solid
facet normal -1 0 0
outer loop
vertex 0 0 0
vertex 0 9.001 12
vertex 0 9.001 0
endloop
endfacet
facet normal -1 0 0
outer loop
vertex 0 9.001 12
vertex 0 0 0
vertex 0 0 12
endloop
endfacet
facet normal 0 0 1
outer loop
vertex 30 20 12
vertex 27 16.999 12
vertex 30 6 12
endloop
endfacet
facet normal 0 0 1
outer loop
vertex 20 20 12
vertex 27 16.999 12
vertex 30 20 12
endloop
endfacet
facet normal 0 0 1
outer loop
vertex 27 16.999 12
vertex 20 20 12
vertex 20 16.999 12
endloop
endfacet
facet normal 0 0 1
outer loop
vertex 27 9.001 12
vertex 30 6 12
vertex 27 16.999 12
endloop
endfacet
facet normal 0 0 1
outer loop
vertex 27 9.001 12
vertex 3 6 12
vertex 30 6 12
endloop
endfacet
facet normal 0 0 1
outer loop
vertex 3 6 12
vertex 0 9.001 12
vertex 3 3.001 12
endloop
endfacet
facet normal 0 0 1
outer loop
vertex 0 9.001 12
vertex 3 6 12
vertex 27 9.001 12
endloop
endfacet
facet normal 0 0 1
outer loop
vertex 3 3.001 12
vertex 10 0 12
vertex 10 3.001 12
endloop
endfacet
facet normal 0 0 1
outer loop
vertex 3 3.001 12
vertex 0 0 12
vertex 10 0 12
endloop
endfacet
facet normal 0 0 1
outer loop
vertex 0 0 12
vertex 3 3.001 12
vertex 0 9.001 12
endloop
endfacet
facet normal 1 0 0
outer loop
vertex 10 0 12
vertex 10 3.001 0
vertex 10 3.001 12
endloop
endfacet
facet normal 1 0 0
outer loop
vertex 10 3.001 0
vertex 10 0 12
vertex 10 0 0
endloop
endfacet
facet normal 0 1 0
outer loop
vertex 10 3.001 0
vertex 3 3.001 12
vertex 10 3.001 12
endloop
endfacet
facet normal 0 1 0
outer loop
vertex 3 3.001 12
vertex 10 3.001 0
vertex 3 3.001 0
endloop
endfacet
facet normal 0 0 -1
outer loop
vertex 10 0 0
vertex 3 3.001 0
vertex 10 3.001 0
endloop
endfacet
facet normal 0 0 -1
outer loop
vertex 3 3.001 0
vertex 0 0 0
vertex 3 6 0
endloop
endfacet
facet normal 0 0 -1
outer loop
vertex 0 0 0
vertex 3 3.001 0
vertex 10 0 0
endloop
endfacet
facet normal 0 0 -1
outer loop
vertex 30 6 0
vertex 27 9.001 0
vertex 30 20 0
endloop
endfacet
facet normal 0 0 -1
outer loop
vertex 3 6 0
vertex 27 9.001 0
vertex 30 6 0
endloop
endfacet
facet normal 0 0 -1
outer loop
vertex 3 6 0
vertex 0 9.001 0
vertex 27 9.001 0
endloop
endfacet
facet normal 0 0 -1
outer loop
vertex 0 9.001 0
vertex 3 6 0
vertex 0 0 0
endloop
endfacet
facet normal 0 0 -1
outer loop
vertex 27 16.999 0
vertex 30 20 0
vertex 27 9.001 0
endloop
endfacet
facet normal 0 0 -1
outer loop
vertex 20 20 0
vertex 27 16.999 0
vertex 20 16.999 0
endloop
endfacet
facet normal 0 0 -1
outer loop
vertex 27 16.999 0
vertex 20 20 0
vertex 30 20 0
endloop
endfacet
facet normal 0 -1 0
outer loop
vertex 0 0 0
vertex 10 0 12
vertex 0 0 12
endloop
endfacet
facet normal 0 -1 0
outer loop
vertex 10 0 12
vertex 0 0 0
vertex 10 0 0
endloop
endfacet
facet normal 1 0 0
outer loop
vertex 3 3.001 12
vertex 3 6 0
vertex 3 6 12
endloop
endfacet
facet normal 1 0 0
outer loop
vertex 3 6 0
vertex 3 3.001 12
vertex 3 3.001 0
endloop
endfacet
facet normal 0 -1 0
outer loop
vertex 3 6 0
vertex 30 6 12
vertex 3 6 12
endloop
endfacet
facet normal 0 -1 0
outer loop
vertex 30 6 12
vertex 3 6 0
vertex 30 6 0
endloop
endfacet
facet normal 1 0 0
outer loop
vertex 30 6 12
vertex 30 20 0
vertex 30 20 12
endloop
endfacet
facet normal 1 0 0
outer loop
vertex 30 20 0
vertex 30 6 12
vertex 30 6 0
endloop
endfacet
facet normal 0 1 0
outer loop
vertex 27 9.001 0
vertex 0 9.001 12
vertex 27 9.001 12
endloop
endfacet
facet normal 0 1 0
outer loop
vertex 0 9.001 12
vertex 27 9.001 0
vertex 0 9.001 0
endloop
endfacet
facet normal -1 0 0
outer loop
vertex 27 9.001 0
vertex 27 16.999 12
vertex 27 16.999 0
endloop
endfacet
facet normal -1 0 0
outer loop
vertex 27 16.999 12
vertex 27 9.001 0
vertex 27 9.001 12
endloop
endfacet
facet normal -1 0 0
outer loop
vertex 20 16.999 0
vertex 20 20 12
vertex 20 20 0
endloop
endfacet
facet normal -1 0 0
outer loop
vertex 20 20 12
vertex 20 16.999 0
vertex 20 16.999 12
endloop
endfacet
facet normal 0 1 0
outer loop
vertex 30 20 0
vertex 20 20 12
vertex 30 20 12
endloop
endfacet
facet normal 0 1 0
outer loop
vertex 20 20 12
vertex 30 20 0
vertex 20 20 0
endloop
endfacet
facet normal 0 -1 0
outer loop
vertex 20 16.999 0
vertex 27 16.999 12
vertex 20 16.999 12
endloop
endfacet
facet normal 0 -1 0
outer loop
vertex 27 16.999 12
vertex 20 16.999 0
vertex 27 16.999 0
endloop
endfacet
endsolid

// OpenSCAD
//=============================================================================
// cord-hanger.scad
//
// Holds the power cord off the floor using the slot ment for storing the
// remote on a lasko tower fan.
//=============================================================================
// Written in 2017 by Patrick Barrett
//
// To the extent possible under law, the author(s) have dedicated all copyright
// and related and neighboring rights to this work to the public domain
// worldwide. This work is distributed without any warranty.
//
// See <http://creativecommons.org/publicdomain/zero/1.0/> for full dedication.
//=============================================================================

width = 12;
thickness = 3;

inner_length = 10;
middle_length = 30;
outter_length = 10;

hanger_opening = 3;
cord_opening = 8;

// customizable variables end here

abit = 0.001; //use for making overlap to get single manifold stl
alot = 100;

$fa = 1;


union() {
    // hanger hook
    cube([inner_length,thickness+abit,width]);
    
    // hanger_opening
    translate([0,thickness-abit, 0])
    cube([thickness,hanger_opening+abit,width]);
    
    // main vert
    translate([0,thickness+hanger_opening, 0])
    cube([middle_length,thickness+abit,width]);
    
    // cord_opening
    translate([middle_length-thickness,
               thickness*2 + hanger_opening - abit,
               0])
    cube([thickness,cord_opening+abit,width]);
    
    // cord hook
    translate([middle_length-outter_length,
               thickness*2 + hanger_opening + cord_opening - abit,
               0])
    cube([outter_length,thickness+abit,width]);
}
